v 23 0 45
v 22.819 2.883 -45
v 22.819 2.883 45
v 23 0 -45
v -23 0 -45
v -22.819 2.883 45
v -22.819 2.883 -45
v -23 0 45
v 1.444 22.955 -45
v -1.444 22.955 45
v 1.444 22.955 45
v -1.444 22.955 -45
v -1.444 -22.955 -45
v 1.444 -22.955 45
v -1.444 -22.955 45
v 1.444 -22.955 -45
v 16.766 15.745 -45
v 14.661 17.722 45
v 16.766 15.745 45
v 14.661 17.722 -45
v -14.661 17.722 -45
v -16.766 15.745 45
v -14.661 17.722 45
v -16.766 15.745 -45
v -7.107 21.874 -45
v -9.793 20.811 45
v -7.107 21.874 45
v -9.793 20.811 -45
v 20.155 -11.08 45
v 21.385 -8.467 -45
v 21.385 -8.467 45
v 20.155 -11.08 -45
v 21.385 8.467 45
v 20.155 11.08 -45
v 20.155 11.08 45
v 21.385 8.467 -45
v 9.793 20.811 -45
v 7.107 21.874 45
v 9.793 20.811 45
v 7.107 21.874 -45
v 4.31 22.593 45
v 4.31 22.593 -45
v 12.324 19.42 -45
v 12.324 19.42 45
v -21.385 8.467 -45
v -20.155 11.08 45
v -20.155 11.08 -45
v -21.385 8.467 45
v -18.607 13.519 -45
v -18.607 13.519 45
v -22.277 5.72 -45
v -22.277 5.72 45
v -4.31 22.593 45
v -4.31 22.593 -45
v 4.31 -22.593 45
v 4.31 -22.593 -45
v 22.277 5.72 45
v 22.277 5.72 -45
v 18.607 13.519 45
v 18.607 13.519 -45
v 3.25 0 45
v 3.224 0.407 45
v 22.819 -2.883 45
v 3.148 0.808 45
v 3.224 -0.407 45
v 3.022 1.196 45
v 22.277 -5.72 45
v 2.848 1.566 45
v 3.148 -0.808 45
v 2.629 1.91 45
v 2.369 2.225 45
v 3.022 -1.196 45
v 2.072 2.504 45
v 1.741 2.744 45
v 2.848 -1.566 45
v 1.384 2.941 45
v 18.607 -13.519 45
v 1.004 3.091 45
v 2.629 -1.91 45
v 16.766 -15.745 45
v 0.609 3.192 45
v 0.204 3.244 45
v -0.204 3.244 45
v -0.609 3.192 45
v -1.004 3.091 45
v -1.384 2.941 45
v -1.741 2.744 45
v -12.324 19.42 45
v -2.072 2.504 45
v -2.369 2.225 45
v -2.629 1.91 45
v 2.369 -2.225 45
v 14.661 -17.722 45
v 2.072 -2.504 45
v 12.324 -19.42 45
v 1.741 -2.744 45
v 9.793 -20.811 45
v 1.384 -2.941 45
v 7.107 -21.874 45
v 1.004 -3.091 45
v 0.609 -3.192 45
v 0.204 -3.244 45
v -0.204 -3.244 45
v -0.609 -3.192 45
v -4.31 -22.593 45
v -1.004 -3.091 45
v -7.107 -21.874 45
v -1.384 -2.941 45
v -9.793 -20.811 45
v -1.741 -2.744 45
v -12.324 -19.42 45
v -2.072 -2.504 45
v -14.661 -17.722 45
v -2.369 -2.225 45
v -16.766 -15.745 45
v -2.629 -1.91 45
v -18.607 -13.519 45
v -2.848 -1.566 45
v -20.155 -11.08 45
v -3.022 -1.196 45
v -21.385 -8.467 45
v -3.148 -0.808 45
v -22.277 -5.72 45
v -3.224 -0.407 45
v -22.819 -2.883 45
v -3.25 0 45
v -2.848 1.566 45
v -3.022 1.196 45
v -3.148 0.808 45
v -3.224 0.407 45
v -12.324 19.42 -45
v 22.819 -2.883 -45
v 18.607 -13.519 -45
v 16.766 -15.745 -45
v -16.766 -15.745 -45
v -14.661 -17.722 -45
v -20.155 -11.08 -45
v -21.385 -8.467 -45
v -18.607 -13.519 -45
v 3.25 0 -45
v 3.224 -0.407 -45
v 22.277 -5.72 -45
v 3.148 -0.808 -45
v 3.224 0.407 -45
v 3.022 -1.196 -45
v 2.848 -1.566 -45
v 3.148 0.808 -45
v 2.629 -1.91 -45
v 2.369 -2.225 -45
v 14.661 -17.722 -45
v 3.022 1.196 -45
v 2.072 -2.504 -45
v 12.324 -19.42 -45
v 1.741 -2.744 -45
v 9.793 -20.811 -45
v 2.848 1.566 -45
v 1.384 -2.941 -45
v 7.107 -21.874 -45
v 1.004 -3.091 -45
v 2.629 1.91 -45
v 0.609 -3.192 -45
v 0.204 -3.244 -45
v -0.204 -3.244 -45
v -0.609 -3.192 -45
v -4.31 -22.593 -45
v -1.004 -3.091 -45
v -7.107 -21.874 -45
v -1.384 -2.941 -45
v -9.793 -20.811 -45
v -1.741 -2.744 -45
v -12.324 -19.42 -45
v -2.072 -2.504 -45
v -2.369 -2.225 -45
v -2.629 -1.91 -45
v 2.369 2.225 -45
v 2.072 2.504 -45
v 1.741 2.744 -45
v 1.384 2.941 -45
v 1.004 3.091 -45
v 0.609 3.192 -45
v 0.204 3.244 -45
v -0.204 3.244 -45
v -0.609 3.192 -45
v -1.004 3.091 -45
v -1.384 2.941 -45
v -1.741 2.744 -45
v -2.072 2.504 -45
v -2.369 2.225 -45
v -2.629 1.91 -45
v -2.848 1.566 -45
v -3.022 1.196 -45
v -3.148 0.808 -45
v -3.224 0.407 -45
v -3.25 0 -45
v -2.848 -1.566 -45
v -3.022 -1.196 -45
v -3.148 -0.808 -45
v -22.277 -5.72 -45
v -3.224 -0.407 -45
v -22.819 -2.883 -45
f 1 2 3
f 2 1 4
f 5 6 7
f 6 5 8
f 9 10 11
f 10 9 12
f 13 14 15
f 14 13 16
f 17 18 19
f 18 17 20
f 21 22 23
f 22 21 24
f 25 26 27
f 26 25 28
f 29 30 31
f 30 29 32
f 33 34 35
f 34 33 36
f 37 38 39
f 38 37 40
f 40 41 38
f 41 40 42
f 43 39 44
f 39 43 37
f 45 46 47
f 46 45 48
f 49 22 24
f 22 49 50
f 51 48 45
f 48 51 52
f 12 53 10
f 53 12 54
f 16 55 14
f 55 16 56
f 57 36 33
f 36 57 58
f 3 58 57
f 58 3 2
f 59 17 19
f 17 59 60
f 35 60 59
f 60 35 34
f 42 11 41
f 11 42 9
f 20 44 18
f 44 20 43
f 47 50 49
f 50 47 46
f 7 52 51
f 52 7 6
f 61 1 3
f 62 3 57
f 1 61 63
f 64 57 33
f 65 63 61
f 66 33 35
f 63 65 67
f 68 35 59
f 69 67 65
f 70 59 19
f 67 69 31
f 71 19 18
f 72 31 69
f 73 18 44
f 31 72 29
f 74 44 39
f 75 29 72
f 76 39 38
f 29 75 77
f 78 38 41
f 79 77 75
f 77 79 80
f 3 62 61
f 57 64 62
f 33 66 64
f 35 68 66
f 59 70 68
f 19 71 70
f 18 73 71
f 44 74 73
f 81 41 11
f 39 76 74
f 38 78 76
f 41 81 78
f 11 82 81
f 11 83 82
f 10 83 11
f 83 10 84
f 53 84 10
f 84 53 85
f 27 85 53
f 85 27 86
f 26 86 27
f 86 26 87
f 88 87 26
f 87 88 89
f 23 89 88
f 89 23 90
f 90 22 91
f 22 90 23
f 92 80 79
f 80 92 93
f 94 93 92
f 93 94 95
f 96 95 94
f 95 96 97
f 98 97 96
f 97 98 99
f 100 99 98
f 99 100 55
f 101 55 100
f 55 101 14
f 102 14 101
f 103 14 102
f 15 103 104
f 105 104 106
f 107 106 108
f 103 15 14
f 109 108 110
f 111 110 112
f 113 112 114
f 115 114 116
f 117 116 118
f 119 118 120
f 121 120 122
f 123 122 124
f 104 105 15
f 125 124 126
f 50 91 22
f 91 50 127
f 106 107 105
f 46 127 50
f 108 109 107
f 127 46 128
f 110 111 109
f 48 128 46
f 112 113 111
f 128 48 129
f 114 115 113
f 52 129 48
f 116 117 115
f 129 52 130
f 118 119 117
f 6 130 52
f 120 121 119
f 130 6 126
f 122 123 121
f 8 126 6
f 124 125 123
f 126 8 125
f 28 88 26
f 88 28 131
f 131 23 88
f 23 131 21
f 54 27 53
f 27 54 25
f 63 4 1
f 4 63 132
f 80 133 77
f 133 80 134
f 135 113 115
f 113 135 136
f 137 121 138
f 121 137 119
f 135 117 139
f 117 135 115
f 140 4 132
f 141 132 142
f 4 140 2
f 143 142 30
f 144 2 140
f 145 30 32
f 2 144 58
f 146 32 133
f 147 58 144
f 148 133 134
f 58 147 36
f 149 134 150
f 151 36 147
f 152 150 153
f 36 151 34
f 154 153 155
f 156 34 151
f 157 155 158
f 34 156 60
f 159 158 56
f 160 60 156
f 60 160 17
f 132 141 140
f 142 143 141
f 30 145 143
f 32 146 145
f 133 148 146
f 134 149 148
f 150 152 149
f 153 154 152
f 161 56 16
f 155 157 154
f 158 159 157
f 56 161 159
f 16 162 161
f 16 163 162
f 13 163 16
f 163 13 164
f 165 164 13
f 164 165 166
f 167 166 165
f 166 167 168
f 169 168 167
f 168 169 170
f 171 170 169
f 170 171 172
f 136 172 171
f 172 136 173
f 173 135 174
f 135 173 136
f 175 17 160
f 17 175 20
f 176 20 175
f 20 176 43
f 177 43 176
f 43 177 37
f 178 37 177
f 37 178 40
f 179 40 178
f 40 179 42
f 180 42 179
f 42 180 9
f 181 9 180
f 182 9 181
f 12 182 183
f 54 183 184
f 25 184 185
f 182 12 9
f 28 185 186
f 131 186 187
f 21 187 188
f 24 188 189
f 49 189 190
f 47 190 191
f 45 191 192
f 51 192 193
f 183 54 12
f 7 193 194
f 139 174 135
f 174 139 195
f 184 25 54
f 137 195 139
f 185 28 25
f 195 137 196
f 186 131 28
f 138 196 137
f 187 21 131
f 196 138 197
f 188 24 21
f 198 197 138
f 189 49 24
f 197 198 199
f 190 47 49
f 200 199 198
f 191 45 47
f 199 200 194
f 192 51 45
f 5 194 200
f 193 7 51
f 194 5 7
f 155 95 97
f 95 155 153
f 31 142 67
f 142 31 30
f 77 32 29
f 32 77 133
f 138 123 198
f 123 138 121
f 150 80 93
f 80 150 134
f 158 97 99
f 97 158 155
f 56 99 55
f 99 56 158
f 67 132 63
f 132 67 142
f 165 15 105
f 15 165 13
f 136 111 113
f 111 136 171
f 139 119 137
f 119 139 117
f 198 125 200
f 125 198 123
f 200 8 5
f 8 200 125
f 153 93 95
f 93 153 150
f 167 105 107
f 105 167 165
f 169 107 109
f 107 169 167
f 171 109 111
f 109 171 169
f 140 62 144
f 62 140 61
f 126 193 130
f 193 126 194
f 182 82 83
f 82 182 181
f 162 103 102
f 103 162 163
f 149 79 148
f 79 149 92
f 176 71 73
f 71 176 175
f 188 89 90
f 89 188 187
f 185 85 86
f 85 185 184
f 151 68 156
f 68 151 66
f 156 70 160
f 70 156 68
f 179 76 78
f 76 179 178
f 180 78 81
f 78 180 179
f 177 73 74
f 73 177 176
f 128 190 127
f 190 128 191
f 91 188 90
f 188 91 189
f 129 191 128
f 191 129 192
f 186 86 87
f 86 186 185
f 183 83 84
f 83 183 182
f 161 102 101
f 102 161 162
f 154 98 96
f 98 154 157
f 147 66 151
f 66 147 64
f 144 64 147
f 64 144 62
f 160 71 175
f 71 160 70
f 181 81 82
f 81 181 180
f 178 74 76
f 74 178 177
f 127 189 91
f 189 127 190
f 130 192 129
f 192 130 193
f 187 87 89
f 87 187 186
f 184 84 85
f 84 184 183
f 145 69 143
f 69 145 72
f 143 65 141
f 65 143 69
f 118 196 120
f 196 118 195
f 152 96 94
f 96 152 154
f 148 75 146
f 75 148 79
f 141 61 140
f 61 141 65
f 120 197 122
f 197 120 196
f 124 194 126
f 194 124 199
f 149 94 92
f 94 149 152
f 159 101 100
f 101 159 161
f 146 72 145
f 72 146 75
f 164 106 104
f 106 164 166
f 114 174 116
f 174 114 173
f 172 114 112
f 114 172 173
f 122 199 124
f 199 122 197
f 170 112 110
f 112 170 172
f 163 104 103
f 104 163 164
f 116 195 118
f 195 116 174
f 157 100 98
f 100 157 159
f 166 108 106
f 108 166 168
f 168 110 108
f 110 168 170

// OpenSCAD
$fn = 50;


difference() {
	union() {
		translate(v = [0, 0, -45.0000000000]) {
			cylinder(h = 90, r = 23.0000000000);
		}
	}
	union() {
		translate(v = [0, 0, -100.0000000000]) {
			cylinder(h = 200, r = 3.2500000000);
		}
	}
}
